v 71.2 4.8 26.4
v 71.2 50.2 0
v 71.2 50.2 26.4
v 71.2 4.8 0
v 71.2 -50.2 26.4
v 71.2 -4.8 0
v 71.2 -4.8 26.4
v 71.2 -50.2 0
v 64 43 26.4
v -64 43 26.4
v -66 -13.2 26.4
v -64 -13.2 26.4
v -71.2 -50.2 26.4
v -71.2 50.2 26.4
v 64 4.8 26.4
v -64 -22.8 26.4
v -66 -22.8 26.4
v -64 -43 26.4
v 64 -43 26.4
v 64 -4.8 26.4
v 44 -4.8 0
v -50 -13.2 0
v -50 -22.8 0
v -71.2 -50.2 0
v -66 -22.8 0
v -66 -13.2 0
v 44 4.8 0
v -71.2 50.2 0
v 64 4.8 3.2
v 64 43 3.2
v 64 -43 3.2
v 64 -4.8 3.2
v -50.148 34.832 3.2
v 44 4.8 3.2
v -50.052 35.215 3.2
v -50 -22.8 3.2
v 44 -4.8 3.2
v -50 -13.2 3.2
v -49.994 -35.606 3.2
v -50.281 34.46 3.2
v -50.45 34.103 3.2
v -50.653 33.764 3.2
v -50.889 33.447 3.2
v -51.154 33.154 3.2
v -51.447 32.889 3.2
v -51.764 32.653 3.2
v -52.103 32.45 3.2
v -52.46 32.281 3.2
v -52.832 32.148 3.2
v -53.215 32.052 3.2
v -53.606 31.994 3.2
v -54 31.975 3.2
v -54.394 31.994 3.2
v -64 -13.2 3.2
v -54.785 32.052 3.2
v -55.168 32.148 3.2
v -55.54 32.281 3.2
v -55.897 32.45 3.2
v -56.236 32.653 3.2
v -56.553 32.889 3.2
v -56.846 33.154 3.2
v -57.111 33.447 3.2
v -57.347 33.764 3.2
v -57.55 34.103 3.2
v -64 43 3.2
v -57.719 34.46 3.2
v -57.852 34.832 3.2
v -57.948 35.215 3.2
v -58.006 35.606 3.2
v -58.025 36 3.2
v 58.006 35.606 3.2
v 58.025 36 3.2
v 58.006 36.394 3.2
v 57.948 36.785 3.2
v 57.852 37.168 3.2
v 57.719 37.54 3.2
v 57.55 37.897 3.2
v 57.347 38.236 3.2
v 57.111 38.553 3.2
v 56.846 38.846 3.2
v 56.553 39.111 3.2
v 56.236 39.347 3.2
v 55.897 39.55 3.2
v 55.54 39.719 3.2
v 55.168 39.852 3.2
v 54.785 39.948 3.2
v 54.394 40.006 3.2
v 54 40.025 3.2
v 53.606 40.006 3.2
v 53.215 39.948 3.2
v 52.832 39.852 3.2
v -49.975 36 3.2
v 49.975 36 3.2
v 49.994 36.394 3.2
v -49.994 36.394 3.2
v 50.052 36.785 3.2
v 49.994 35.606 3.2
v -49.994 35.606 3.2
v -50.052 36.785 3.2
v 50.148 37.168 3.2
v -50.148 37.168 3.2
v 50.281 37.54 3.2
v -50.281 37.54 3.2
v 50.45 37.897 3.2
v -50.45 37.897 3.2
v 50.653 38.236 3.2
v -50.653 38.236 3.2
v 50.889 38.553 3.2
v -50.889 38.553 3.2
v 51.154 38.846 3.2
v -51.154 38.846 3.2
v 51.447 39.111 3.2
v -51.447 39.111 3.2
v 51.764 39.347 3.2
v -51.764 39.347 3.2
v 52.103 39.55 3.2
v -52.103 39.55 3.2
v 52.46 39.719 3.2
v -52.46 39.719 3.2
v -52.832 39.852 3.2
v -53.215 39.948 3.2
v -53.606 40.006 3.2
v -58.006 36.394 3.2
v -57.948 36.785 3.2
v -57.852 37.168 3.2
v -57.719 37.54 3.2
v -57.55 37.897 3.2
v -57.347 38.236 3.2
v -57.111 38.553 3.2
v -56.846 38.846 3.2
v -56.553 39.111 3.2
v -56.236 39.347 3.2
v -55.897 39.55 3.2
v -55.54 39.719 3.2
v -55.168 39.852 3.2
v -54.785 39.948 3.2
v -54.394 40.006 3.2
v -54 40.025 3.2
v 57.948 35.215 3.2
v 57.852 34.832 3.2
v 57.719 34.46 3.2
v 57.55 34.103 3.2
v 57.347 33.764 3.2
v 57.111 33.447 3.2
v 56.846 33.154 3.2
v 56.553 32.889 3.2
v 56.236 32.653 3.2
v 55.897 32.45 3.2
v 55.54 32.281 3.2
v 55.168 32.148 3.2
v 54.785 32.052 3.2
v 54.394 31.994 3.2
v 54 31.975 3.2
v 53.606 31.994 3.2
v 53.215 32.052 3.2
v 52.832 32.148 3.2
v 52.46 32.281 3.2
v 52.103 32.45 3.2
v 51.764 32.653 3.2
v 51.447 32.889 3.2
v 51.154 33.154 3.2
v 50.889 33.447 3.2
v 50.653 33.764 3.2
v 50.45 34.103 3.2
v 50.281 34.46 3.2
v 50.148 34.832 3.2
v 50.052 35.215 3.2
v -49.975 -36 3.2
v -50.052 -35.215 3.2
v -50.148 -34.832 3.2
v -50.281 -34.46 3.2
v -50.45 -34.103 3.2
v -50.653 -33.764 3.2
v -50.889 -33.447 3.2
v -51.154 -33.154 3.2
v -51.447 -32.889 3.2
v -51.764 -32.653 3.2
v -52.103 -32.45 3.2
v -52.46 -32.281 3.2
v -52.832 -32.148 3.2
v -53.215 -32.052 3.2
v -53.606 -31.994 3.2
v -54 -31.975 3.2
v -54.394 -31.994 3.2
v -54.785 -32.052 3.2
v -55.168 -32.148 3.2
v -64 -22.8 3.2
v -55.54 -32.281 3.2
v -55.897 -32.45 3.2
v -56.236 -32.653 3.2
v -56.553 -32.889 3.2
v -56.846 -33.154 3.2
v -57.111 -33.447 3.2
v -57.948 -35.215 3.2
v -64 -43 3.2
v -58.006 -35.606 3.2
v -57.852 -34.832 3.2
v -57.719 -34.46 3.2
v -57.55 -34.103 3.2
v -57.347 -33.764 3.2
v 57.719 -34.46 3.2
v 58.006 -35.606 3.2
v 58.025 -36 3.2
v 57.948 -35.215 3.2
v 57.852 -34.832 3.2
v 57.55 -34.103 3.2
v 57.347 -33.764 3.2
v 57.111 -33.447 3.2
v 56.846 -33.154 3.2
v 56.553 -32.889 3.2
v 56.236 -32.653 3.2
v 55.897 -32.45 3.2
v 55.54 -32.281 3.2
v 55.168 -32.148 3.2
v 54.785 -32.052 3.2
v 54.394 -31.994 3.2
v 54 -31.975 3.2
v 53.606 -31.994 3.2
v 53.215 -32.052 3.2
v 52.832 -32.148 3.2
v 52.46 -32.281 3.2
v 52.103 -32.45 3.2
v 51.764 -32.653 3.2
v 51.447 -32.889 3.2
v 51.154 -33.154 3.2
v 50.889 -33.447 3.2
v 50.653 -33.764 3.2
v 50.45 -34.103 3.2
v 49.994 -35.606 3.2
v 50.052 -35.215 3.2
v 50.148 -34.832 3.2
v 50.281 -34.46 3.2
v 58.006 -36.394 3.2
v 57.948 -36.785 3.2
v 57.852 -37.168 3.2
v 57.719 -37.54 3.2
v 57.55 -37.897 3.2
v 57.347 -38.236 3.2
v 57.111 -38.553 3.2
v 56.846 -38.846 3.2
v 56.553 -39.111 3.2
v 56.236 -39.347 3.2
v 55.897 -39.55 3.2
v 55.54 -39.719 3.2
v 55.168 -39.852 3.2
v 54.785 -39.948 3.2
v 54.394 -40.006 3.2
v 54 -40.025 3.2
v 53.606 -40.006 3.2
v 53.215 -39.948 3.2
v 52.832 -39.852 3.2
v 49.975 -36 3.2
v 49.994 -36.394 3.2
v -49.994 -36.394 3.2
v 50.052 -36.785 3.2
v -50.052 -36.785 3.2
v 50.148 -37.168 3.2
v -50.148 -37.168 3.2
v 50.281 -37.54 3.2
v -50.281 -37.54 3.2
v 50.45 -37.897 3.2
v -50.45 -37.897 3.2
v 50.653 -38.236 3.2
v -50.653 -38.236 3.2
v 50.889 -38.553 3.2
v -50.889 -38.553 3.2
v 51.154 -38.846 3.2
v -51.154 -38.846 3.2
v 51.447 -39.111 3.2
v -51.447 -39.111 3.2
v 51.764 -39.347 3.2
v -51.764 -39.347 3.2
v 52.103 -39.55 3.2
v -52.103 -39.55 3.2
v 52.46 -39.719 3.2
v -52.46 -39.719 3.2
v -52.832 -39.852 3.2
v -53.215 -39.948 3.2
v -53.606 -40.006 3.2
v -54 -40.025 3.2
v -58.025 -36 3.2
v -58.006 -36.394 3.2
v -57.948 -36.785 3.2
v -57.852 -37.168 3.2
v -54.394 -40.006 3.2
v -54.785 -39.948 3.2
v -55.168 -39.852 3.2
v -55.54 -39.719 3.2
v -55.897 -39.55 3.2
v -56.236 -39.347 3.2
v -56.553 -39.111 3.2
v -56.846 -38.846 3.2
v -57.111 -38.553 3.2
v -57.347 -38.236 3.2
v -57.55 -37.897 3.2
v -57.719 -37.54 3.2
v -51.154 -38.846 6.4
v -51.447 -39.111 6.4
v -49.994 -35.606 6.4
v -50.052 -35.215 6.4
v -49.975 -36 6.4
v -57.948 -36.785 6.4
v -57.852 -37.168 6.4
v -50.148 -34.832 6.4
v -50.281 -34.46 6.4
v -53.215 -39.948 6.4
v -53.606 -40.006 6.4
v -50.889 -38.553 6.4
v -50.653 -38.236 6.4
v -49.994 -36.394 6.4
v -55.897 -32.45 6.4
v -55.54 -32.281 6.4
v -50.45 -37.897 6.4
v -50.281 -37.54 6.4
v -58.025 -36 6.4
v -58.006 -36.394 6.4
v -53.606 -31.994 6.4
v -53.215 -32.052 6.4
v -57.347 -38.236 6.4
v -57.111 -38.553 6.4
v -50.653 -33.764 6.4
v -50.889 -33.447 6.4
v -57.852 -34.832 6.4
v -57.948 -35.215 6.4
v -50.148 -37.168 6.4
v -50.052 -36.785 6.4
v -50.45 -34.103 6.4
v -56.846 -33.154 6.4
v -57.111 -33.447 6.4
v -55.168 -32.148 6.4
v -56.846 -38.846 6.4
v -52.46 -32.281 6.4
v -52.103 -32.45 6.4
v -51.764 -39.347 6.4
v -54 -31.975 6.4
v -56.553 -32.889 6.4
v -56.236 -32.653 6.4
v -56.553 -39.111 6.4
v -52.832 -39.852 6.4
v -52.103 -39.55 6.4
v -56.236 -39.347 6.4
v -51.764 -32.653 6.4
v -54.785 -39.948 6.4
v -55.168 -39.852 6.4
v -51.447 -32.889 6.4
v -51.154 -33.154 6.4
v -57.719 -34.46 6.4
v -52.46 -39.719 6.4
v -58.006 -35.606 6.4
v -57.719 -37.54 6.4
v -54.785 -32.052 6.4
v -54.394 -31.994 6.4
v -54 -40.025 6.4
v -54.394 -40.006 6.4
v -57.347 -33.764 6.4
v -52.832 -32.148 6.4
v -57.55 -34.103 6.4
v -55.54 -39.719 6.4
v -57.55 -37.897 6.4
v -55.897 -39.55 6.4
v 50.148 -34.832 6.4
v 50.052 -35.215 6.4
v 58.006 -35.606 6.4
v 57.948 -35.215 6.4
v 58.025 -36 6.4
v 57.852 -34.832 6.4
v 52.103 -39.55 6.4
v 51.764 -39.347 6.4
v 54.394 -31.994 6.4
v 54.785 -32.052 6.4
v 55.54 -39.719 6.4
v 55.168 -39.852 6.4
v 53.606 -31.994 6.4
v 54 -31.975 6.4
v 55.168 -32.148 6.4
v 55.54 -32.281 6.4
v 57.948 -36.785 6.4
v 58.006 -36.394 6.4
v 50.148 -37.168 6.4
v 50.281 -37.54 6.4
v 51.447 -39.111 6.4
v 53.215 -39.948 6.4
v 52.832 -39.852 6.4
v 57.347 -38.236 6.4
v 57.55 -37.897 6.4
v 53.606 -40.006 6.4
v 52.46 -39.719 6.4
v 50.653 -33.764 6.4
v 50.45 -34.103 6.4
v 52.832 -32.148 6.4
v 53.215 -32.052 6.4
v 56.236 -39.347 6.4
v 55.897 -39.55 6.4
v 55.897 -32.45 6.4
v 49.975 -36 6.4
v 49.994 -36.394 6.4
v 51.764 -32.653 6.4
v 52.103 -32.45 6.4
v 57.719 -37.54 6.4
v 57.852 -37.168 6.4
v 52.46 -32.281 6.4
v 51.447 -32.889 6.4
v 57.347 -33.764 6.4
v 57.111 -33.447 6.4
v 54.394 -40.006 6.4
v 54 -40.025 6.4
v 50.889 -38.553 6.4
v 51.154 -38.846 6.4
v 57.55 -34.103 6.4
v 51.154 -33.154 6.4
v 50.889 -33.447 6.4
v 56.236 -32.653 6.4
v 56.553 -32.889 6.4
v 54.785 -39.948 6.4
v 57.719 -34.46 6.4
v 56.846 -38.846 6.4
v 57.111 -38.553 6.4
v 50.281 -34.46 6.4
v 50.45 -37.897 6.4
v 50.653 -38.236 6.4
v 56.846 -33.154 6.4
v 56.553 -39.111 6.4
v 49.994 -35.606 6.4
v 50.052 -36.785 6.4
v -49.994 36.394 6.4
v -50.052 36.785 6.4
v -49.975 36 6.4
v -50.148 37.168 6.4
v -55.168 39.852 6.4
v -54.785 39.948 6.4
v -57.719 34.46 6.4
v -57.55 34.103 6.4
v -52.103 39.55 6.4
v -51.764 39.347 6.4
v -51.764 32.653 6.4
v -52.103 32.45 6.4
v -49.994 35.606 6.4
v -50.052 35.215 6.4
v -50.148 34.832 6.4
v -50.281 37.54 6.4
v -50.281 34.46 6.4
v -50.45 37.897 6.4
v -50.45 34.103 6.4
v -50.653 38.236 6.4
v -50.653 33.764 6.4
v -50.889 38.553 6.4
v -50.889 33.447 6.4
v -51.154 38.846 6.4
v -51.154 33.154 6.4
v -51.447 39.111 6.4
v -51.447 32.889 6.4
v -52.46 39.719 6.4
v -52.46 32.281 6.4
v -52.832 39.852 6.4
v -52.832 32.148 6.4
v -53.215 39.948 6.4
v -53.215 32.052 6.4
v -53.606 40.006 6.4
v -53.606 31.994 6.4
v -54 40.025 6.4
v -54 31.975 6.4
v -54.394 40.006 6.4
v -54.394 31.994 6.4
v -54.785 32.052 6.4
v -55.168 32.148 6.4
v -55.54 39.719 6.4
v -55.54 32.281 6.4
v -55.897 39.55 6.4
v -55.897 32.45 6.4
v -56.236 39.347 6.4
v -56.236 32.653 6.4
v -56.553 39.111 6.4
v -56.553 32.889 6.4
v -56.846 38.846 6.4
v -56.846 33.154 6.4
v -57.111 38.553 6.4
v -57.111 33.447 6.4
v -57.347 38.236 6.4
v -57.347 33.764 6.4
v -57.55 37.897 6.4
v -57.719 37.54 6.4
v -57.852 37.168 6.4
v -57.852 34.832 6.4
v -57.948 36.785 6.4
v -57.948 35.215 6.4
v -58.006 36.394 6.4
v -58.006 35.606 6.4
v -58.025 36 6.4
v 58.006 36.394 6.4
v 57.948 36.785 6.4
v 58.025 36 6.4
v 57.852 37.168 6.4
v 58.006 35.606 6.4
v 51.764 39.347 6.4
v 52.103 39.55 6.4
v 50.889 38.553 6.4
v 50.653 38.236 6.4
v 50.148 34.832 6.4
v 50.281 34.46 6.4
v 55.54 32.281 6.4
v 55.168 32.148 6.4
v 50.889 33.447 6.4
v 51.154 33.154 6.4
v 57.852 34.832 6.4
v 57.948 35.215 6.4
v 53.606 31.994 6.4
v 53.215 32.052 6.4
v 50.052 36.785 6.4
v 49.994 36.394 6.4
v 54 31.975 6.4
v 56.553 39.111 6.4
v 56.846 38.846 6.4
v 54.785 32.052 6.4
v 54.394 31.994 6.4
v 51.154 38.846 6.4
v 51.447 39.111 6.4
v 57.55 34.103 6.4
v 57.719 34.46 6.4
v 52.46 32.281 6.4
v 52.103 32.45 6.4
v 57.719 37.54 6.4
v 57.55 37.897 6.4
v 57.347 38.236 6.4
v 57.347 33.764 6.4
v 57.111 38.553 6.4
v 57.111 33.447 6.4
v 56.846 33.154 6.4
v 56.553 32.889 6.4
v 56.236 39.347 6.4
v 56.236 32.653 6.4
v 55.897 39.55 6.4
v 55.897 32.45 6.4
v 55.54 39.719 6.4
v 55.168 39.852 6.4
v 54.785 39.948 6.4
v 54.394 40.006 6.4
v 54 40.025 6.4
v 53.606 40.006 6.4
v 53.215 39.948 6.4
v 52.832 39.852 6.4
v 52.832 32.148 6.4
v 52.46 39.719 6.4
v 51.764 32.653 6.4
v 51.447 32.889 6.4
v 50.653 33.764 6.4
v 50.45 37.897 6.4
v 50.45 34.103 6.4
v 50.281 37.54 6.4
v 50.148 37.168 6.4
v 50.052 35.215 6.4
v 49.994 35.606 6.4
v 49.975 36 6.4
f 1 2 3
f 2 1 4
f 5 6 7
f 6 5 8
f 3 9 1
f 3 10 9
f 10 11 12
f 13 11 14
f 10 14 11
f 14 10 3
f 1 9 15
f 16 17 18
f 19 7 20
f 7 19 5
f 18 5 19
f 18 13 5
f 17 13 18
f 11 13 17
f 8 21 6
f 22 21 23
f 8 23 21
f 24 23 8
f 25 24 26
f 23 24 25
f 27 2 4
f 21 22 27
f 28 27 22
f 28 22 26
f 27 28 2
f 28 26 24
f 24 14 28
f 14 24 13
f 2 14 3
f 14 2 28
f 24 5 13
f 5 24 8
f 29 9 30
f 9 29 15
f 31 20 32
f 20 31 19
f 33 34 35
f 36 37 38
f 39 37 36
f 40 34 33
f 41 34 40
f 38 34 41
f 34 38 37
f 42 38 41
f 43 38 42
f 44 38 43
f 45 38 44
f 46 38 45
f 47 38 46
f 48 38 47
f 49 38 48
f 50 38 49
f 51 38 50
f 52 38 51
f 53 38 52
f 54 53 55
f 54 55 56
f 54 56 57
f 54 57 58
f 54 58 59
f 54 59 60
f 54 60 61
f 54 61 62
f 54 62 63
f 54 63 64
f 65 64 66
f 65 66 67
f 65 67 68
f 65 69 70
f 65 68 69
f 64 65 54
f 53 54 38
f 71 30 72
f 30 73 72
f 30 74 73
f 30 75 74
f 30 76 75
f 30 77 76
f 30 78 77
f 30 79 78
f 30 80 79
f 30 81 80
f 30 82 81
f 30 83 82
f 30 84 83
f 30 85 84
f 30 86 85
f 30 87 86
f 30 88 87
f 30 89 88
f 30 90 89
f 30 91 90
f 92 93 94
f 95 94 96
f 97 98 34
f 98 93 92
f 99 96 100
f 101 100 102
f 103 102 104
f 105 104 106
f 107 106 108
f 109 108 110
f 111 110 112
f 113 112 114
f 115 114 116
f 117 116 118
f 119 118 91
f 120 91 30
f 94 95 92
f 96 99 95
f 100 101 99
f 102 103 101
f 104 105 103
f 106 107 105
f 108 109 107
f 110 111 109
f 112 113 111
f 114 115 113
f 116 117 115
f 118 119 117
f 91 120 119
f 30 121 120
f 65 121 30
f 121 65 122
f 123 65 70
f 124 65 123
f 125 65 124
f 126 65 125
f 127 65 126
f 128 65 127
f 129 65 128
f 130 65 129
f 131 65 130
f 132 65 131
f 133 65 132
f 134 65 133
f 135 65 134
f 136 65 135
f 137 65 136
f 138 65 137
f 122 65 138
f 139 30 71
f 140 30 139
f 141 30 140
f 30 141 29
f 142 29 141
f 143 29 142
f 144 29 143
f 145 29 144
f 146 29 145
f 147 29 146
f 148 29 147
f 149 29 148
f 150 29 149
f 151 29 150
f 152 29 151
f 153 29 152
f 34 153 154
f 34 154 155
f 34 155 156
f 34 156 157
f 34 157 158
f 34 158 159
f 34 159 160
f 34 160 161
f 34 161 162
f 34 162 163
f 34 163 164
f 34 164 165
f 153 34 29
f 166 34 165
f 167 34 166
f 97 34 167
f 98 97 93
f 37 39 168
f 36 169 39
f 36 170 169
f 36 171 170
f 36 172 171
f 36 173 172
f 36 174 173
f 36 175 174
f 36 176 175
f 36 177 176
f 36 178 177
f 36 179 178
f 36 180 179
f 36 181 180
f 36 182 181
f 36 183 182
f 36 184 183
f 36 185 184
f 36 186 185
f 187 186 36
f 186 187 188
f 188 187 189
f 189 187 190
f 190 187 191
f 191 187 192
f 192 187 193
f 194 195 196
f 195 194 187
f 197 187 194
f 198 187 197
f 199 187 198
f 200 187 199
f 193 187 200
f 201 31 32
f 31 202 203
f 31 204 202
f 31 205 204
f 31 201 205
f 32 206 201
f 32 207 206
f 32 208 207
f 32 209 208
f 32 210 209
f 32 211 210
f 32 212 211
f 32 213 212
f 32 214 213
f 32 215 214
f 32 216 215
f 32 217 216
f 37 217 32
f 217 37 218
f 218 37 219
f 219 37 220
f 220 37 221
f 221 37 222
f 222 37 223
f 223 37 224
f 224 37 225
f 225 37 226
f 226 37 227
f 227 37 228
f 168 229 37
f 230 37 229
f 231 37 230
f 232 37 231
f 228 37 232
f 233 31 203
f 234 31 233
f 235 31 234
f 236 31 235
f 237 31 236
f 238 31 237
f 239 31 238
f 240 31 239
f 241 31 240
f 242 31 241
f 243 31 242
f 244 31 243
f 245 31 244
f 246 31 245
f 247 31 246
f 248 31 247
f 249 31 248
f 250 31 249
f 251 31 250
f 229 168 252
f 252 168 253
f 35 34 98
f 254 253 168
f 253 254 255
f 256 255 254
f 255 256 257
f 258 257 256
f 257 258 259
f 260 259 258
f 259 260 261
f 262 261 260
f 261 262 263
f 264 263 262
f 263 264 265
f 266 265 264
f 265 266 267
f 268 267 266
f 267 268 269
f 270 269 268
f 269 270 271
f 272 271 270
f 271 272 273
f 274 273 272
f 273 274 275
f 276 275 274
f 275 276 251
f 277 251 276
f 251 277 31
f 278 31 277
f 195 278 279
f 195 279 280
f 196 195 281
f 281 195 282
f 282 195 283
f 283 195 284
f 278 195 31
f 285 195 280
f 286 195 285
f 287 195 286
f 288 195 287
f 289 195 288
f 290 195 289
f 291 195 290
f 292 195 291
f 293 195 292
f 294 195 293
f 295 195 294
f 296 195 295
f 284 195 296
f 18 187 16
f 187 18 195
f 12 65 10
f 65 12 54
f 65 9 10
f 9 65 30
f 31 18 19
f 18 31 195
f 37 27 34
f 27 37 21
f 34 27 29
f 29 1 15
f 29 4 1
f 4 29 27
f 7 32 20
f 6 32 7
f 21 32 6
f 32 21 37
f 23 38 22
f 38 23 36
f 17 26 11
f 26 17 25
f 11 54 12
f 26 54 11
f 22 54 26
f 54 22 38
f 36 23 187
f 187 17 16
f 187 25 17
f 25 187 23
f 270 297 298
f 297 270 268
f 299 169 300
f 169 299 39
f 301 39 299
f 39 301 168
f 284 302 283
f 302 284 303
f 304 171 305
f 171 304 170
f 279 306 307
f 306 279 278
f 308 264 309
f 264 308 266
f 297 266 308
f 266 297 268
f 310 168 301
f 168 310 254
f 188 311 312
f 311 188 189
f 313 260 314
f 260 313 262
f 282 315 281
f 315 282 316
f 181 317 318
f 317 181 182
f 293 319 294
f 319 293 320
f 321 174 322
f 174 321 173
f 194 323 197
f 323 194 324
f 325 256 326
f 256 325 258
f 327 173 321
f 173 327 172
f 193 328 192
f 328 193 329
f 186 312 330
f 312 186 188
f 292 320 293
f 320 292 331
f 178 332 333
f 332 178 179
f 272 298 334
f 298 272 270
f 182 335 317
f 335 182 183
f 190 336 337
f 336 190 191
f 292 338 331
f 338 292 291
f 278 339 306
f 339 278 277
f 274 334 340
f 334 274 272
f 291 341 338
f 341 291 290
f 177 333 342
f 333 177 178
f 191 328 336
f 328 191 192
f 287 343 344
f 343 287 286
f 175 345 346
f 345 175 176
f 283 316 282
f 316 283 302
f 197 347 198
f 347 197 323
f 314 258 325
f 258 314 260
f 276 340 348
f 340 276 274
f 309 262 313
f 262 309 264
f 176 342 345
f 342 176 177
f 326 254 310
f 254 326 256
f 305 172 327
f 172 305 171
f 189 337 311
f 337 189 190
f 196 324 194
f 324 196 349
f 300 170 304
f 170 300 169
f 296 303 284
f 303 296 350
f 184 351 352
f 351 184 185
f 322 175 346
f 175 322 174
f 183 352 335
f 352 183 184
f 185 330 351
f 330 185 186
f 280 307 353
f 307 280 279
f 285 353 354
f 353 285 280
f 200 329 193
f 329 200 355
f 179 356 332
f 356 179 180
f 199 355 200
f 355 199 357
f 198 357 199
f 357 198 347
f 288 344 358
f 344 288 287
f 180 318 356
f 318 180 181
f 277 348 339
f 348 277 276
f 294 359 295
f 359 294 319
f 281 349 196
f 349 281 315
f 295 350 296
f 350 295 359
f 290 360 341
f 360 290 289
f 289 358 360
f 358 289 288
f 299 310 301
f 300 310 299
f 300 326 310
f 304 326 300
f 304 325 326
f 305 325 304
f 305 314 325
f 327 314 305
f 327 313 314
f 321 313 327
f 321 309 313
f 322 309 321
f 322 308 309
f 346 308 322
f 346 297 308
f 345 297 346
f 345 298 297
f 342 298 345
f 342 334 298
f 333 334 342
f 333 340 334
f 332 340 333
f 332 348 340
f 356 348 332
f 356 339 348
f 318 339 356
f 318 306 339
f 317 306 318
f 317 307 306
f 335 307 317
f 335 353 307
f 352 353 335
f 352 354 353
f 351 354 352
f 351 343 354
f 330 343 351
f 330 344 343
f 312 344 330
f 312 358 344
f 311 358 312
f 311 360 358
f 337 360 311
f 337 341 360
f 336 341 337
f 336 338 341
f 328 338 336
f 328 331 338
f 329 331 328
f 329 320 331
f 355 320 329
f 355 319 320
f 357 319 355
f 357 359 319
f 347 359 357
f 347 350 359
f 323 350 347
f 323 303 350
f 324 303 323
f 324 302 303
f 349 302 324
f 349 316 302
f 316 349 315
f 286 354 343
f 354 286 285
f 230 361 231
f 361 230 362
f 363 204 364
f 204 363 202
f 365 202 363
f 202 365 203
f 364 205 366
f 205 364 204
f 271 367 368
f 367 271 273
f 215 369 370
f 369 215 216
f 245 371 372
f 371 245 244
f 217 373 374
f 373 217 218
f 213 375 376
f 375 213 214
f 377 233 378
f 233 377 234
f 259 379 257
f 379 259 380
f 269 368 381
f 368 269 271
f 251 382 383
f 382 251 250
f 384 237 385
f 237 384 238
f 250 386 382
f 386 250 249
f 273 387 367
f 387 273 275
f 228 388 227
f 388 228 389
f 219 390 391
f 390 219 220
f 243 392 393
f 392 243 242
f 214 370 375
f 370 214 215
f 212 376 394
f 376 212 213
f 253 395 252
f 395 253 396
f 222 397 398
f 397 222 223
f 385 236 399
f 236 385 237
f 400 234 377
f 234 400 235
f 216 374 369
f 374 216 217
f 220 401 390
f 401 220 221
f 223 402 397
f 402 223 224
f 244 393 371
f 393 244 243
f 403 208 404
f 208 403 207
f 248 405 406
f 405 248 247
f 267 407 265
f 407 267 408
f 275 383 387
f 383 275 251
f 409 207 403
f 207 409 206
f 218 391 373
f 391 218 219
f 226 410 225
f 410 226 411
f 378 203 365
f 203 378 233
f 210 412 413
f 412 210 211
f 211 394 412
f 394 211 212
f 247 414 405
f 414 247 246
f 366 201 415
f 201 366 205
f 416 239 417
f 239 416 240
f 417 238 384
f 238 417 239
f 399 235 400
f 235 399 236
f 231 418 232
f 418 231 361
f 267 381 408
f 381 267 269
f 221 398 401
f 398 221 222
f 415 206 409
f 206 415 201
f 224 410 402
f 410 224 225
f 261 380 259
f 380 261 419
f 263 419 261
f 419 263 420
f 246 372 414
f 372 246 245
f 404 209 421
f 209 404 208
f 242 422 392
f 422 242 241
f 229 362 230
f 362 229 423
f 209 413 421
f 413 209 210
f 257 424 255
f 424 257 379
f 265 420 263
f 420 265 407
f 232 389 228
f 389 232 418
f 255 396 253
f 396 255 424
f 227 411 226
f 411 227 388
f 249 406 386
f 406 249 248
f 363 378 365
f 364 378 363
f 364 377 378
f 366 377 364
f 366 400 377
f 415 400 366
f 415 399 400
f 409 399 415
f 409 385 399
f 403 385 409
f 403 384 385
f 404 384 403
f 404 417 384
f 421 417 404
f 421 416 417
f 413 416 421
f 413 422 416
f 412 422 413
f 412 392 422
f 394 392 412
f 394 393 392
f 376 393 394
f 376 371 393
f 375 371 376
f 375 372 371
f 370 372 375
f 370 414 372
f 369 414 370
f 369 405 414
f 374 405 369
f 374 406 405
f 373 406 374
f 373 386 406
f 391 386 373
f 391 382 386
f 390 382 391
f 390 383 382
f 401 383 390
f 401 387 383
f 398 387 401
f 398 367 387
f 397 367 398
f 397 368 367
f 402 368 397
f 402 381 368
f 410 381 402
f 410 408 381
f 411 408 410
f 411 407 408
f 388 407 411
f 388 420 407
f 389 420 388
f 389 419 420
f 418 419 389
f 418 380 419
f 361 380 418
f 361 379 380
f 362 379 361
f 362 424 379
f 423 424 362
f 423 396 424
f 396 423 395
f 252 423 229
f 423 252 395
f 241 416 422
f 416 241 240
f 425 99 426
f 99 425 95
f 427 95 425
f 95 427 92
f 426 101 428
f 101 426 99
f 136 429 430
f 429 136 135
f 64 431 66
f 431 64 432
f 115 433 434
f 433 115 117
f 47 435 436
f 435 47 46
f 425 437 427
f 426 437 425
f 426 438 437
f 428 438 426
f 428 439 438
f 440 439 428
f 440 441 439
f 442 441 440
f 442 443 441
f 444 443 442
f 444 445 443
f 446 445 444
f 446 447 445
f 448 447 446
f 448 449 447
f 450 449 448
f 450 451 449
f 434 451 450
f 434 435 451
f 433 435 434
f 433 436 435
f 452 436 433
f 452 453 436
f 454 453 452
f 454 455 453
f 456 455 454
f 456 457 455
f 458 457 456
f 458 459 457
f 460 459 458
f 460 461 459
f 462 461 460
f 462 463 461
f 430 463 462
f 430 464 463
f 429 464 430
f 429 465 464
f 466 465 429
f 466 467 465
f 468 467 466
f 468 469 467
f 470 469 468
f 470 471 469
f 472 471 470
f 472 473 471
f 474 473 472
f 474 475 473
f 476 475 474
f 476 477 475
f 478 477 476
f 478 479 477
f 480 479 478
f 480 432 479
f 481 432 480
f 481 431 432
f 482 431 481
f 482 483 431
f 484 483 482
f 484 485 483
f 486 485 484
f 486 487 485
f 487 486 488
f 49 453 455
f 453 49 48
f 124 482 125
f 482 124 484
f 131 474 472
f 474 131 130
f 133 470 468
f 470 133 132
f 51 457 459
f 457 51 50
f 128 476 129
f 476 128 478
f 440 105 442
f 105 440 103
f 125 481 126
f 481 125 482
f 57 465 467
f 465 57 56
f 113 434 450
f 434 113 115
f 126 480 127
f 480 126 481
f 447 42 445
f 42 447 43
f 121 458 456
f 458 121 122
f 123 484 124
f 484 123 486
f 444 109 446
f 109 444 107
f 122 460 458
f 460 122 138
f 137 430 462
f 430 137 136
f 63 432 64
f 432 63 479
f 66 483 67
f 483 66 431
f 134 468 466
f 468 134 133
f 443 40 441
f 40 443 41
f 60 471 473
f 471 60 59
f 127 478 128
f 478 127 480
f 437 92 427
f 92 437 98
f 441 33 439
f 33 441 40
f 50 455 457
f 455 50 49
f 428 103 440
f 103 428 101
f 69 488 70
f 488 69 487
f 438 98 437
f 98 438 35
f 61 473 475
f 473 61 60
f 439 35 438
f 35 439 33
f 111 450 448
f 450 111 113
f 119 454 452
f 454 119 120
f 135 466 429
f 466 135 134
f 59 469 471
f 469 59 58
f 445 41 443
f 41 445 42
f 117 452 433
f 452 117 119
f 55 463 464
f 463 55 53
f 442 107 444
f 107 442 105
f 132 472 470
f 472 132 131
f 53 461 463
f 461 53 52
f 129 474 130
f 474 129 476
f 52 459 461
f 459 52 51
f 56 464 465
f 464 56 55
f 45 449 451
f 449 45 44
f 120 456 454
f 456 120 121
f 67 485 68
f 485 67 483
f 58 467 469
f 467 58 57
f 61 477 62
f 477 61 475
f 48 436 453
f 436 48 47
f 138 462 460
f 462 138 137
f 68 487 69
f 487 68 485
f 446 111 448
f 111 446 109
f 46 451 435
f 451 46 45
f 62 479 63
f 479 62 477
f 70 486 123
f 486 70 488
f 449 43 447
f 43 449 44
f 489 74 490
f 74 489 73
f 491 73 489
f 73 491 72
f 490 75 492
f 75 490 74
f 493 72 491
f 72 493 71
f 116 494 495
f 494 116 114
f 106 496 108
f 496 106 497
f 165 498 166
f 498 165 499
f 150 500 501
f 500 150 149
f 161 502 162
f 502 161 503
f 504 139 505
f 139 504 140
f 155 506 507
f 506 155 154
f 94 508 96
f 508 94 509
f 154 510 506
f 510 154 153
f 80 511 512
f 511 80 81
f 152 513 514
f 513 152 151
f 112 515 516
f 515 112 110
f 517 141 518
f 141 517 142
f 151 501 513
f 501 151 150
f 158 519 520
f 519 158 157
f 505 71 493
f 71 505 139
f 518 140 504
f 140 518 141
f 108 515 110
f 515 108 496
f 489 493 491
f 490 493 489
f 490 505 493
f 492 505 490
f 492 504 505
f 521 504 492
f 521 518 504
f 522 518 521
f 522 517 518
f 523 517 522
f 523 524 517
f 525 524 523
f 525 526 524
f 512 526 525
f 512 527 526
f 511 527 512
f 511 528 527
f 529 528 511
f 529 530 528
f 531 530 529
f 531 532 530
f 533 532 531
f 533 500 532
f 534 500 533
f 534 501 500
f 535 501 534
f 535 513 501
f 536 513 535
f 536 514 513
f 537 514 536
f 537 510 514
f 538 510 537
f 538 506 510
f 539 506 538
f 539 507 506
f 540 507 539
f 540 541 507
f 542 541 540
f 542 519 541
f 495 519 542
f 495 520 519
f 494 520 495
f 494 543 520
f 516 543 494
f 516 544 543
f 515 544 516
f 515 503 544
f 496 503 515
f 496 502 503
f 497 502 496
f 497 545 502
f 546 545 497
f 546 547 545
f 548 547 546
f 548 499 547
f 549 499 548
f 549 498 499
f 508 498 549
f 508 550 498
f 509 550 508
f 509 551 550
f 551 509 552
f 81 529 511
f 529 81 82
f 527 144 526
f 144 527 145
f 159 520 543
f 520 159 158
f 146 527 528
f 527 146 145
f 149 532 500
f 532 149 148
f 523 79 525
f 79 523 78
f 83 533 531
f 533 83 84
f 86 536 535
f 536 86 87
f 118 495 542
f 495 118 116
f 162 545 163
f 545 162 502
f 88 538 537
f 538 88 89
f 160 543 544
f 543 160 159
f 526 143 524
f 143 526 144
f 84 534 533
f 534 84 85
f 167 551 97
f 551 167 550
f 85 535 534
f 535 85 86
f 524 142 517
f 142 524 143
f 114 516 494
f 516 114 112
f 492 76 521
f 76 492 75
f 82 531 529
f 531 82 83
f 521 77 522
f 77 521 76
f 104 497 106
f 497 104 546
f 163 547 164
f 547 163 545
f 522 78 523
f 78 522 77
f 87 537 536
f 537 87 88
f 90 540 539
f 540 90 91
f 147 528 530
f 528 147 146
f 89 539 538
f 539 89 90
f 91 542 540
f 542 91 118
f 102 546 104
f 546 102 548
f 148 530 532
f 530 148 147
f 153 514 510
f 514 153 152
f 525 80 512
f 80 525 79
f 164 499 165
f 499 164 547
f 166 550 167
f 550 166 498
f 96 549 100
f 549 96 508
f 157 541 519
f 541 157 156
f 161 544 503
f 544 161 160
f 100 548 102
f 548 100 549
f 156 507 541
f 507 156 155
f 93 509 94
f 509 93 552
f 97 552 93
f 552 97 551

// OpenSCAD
// file: 01_kicad_parameters.scad
// KiCad-generated OpenSCAD parameter handoff.
// Source: 01_kicad_mechanical_map.csv and 01_kicad_board.kicad_pcb.
$fn = 64;
board = [128.000, 86.000, 1.600];
enclosure = [142.400, 100.400, 26.400];
wall = 3.200;
lid_clearance = 3.600;

// [reference, kind, x_mm, y_mm, height_mm, keepout_radius_mm, role]
mechanical_features = [
  ["Q1", "MOSFET_BANK", -28.000, 10.000, 5.500, 18.000, "component_keepout"],
  ["Q2", "MOSFET_BANK", 0.000, 10.000, 5.500, 18.000, "component_keepout"],
  ["Q3", "MOSFET_BANK", 28.000, 10.000, 5.500, 18.000, "component_keepout"],
  ["J1", "PHASE_TERMINAL", 58.000, 0.000, 9.000, 14.000, "connector_window"],
  ["J2", "HALL_SENSOR", -58.000, -18.000, 4.000, 8.000, "connector_window"],
  ["MH1", "MOUNTING_HOLE", -54.000, -36.000, 0.000, 1.750, "standoff_axis"],
  ["MH2", "MOUNTING_HOLE", 54.000, -36.000, 0.000, 1.750, "standoff_axis"],
  ["MH3", "MOUNTING_HOLE", -54.000, 36.000, 0.000, 1.750, "standoff_axis"],
  ["MH4", "MOUNTING_HOLE", 54.000, 36.000, 0.000, 1.750, "standoff_axis"],
];

standoff_axes = [for (f = mechanical_features) if (f[6] == "standoff_axis") [f[2], f[3], f[5], f[0]]];
interface_features = [for (f = mechanical_features) if (f[6] == "connector_window" || f[6] == "access_bore" || f[6] == "antenna_keepout") [f[2], f[3], f[5], f[0], f[6]]];
// main file
// Task 04: Motor-controller vibration tray handoff
// OpenSCAD stage consumes the KiCad-generated 01_kicad_parameters.scad handoff.
include <01_kicad_parameters.scad>;

module standoff(x, y) {
  translate([x, y, board[2]]) cylinder(d=8.050, h=wall + board[2]);
}
module keepout_window(x, y, r) {
  translate([x, y, enclosure[2]/2]) cube([2*r, wall*3, enclosure[2]], center=true);
}
module enclosure_shell() {
  difference() {
    translate([-enclosure[0]/2, -enclosure[1]/2, 0]) cube(enclosure);
    translate([-board[0]/2, -board[1]/2, wall]) cube([board[0], board[1], enclosure[2]]);
    // J1 PHASE_TERMINAL side/service keepout
    keepout_window(58.000, 0.000, 14.000);
    // J2 HALL_SENSOR side/service keepout
    keepout_window(-58.000, -18.000, 8.000);
  }
}
// MH1 copied from KiCad at (-54.000, -36.000)
// MH2 copied from KiCad at (54.000, -36.000)
// MH3 copied from KiCad at (-54.000, 36.000)
// MH4 copied from KiCad at (54.000, 36.000)
union() {
  enclosure_shell();
  standoff(-54.000, -36.000);
  standoff(54.000, -36.000);
  standoff(-54.000, 36.000);
  standoff(54.000, 36.000);
}
